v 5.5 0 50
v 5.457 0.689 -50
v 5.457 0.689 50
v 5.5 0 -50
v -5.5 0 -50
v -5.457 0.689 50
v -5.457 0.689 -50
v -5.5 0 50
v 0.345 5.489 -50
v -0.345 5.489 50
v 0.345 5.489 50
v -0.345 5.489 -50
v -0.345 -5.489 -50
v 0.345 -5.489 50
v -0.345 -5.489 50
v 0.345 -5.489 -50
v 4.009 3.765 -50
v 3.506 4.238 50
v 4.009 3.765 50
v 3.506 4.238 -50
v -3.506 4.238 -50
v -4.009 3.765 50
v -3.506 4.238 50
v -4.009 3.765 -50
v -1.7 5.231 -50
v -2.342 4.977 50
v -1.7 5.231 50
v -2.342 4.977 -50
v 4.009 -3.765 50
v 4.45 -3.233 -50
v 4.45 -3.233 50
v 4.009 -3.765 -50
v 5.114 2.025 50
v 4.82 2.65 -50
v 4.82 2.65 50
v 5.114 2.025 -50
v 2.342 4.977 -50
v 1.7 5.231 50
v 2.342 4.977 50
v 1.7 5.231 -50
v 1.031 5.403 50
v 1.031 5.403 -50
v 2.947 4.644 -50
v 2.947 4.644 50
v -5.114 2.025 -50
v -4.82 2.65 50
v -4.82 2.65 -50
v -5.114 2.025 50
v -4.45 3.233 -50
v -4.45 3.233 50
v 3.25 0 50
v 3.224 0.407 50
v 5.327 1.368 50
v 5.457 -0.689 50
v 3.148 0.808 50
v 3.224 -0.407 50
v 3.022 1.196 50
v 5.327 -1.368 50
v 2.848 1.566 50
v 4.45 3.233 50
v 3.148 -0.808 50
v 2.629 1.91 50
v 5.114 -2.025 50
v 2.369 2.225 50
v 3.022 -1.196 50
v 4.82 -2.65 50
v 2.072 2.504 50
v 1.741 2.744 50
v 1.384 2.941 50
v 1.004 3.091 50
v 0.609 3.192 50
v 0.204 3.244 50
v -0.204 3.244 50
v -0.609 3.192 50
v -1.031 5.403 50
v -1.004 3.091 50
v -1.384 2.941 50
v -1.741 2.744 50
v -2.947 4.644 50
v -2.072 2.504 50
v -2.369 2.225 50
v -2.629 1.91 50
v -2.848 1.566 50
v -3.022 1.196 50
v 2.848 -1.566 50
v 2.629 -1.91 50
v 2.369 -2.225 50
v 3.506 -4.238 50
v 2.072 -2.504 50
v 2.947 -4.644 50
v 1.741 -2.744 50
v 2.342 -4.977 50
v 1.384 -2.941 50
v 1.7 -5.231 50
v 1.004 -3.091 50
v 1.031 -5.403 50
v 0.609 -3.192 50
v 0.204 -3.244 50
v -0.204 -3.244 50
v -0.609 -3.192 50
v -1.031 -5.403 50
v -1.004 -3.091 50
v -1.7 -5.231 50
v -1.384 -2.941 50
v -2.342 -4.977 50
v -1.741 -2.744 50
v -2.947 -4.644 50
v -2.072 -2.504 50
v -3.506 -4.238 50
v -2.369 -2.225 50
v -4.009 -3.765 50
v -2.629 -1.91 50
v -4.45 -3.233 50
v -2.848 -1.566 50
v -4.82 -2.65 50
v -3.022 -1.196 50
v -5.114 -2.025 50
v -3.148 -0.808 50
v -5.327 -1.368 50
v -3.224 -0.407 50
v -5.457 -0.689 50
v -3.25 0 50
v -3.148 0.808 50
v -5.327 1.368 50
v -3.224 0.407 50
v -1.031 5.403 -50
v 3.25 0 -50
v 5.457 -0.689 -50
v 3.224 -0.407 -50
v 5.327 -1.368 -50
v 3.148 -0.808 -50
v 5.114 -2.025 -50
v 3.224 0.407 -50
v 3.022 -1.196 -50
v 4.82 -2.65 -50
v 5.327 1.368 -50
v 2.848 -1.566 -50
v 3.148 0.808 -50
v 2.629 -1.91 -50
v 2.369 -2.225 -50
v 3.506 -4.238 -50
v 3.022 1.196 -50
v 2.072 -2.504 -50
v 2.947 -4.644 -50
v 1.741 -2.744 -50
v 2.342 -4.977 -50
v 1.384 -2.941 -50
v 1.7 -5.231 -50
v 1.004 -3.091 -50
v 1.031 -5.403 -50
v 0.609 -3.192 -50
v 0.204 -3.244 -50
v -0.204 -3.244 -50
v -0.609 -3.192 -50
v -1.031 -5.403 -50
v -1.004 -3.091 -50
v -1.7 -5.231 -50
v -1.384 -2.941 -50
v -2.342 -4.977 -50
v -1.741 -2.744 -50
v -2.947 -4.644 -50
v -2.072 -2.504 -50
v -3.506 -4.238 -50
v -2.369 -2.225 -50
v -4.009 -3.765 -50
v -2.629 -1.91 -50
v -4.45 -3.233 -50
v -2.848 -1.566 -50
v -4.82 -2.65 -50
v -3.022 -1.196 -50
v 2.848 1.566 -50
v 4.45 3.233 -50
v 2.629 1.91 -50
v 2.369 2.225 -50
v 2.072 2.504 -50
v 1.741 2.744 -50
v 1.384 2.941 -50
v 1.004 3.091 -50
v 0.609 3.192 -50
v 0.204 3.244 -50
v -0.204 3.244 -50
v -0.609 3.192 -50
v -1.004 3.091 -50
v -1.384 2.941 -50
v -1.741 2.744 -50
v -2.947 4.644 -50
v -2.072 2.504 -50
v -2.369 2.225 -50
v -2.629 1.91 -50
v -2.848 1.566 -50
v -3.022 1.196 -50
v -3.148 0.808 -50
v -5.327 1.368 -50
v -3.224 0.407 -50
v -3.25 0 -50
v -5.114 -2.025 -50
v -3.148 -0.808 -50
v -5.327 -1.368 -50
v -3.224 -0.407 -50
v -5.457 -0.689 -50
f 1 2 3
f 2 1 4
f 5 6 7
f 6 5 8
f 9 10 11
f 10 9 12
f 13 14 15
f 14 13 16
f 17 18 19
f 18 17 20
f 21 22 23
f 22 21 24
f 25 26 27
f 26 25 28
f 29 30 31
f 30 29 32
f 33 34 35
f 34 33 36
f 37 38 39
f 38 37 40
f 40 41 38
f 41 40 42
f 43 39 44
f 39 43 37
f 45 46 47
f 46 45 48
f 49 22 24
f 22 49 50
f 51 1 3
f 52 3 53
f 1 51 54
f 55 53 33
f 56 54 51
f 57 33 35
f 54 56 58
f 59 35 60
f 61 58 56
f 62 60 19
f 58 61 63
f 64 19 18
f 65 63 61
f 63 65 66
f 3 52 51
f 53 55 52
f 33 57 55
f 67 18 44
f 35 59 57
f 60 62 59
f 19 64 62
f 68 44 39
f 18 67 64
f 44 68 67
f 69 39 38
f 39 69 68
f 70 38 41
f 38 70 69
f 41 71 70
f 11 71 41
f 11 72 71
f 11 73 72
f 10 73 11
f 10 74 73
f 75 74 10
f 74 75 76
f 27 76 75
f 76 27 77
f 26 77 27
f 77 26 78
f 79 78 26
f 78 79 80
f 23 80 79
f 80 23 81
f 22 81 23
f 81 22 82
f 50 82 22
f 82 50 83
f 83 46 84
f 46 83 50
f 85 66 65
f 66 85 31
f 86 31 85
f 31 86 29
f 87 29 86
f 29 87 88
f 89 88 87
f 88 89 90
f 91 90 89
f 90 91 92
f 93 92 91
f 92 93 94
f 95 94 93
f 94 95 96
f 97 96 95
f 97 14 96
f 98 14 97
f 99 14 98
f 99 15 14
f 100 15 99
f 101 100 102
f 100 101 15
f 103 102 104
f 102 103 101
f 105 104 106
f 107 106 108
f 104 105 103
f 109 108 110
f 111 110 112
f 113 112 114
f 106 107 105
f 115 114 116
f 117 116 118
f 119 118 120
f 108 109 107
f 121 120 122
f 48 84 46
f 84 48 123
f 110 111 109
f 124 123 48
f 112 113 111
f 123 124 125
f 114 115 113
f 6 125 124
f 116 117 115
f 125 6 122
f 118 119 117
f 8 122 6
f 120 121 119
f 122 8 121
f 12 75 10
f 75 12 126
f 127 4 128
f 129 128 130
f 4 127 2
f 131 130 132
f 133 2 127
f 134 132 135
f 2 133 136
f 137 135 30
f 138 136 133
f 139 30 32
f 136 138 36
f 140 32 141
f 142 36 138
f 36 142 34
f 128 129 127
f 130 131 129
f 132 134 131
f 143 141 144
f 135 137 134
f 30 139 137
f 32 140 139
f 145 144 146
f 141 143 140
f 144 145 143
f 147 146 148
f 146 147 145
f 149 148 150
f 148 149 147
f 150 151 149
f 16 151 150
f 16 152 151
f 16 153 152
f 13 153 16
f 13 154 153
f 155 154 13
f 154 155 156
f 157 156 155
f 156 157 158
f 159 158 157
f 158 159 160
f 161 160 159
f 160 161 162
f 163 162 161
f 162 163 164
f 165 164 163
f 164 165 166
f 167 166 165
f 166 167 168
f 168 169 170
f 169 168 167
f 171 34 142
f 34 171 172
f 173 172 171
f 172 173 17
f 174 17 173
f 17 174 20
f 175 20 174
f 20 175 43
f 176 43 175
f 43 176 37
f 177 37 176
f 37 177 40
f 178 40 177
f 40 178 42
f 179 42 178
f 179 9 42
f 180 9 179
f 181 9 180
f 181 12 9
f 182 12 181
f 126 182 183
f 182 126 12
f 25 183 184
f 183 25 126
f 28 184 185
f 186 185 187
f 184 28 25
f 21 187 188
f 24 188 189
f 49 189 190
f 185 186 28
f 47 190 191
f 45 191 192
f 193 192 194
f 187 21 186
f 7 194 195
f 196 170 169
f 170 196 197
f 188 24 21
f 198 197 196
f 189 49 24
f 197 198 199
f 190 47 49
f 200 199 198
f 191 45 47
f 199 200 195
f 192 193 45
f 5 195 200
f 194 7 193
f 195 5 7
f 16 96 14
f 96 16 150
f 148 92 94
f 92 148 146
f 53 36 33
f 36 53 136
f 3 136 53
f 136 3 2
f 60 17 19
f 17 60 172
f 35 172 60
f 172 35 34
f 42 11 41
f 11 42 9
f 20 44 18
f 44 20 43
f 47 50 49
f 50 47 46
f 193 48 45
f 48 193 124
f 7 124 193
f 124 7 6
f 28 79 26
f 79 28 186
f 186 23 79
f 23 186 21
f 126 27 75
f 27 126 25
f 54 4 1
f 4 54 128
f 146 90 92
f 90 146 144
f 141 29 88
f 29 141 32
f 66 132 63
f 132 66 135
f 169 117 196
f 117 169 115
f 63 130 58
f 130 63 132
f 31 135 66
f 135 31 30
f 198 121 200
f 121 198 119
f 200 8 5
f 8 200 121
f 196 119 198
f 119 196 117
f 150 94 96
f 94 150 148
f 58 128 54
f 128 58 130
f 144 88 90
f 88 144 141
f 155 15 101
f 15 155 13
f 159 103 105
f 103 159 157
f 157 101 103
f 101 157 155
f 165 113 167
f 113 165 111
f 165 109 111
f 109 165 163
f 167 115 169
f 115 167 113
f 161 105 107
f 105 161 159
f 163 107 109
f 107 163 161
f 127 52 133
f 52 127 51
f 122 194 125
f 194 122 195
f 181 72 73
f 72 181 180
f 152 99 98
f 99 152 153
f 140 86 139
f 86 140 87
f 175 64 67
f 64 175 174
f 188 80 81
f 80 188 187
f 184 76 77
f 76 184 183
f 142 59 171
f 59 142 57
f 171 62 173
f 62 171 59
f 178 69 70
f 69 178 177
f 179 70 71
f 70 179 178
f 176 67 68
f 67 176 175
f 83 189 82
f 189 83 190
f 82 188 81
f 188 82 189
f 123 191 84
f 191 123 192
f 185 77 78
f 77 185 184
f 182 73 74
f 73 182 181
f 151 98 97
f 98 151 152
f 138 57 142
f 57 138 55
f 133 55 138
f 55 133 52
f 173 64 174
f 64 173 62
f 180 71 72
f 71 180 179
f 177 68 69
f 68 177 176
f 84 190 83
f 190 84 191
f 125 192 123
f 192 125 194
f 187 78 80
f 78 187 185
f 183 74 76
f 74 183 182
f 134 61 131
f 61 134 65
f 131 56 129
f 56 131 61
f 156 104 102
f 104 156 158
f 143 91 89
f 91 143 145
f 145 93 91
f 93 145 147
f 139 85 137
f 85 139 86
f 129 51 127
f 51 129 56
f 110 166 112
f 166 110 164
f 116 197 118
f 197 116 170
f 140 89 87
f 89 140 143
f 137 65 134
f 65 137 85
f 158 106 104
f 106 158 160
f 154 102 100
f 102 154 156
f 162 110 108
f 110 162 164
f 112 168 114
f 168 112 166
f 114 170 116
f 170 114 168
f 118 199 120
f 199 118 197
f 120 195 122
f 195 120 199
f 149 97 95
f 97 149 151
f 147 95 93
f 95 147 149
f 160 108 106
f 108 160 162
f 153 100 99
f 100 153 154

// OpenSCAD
$fn = 50;


difference() {
	union() {
		translate(v = [0, 0, -50.0000000000]) {
			cylinder(h = 100, r = 5.5000000000);
		}
	}
	union() {
		translate(v = [0, 0, -100.0000000000]) {
			cylinder(h = 200, r = 3.2500000000);
		}
	}
}
